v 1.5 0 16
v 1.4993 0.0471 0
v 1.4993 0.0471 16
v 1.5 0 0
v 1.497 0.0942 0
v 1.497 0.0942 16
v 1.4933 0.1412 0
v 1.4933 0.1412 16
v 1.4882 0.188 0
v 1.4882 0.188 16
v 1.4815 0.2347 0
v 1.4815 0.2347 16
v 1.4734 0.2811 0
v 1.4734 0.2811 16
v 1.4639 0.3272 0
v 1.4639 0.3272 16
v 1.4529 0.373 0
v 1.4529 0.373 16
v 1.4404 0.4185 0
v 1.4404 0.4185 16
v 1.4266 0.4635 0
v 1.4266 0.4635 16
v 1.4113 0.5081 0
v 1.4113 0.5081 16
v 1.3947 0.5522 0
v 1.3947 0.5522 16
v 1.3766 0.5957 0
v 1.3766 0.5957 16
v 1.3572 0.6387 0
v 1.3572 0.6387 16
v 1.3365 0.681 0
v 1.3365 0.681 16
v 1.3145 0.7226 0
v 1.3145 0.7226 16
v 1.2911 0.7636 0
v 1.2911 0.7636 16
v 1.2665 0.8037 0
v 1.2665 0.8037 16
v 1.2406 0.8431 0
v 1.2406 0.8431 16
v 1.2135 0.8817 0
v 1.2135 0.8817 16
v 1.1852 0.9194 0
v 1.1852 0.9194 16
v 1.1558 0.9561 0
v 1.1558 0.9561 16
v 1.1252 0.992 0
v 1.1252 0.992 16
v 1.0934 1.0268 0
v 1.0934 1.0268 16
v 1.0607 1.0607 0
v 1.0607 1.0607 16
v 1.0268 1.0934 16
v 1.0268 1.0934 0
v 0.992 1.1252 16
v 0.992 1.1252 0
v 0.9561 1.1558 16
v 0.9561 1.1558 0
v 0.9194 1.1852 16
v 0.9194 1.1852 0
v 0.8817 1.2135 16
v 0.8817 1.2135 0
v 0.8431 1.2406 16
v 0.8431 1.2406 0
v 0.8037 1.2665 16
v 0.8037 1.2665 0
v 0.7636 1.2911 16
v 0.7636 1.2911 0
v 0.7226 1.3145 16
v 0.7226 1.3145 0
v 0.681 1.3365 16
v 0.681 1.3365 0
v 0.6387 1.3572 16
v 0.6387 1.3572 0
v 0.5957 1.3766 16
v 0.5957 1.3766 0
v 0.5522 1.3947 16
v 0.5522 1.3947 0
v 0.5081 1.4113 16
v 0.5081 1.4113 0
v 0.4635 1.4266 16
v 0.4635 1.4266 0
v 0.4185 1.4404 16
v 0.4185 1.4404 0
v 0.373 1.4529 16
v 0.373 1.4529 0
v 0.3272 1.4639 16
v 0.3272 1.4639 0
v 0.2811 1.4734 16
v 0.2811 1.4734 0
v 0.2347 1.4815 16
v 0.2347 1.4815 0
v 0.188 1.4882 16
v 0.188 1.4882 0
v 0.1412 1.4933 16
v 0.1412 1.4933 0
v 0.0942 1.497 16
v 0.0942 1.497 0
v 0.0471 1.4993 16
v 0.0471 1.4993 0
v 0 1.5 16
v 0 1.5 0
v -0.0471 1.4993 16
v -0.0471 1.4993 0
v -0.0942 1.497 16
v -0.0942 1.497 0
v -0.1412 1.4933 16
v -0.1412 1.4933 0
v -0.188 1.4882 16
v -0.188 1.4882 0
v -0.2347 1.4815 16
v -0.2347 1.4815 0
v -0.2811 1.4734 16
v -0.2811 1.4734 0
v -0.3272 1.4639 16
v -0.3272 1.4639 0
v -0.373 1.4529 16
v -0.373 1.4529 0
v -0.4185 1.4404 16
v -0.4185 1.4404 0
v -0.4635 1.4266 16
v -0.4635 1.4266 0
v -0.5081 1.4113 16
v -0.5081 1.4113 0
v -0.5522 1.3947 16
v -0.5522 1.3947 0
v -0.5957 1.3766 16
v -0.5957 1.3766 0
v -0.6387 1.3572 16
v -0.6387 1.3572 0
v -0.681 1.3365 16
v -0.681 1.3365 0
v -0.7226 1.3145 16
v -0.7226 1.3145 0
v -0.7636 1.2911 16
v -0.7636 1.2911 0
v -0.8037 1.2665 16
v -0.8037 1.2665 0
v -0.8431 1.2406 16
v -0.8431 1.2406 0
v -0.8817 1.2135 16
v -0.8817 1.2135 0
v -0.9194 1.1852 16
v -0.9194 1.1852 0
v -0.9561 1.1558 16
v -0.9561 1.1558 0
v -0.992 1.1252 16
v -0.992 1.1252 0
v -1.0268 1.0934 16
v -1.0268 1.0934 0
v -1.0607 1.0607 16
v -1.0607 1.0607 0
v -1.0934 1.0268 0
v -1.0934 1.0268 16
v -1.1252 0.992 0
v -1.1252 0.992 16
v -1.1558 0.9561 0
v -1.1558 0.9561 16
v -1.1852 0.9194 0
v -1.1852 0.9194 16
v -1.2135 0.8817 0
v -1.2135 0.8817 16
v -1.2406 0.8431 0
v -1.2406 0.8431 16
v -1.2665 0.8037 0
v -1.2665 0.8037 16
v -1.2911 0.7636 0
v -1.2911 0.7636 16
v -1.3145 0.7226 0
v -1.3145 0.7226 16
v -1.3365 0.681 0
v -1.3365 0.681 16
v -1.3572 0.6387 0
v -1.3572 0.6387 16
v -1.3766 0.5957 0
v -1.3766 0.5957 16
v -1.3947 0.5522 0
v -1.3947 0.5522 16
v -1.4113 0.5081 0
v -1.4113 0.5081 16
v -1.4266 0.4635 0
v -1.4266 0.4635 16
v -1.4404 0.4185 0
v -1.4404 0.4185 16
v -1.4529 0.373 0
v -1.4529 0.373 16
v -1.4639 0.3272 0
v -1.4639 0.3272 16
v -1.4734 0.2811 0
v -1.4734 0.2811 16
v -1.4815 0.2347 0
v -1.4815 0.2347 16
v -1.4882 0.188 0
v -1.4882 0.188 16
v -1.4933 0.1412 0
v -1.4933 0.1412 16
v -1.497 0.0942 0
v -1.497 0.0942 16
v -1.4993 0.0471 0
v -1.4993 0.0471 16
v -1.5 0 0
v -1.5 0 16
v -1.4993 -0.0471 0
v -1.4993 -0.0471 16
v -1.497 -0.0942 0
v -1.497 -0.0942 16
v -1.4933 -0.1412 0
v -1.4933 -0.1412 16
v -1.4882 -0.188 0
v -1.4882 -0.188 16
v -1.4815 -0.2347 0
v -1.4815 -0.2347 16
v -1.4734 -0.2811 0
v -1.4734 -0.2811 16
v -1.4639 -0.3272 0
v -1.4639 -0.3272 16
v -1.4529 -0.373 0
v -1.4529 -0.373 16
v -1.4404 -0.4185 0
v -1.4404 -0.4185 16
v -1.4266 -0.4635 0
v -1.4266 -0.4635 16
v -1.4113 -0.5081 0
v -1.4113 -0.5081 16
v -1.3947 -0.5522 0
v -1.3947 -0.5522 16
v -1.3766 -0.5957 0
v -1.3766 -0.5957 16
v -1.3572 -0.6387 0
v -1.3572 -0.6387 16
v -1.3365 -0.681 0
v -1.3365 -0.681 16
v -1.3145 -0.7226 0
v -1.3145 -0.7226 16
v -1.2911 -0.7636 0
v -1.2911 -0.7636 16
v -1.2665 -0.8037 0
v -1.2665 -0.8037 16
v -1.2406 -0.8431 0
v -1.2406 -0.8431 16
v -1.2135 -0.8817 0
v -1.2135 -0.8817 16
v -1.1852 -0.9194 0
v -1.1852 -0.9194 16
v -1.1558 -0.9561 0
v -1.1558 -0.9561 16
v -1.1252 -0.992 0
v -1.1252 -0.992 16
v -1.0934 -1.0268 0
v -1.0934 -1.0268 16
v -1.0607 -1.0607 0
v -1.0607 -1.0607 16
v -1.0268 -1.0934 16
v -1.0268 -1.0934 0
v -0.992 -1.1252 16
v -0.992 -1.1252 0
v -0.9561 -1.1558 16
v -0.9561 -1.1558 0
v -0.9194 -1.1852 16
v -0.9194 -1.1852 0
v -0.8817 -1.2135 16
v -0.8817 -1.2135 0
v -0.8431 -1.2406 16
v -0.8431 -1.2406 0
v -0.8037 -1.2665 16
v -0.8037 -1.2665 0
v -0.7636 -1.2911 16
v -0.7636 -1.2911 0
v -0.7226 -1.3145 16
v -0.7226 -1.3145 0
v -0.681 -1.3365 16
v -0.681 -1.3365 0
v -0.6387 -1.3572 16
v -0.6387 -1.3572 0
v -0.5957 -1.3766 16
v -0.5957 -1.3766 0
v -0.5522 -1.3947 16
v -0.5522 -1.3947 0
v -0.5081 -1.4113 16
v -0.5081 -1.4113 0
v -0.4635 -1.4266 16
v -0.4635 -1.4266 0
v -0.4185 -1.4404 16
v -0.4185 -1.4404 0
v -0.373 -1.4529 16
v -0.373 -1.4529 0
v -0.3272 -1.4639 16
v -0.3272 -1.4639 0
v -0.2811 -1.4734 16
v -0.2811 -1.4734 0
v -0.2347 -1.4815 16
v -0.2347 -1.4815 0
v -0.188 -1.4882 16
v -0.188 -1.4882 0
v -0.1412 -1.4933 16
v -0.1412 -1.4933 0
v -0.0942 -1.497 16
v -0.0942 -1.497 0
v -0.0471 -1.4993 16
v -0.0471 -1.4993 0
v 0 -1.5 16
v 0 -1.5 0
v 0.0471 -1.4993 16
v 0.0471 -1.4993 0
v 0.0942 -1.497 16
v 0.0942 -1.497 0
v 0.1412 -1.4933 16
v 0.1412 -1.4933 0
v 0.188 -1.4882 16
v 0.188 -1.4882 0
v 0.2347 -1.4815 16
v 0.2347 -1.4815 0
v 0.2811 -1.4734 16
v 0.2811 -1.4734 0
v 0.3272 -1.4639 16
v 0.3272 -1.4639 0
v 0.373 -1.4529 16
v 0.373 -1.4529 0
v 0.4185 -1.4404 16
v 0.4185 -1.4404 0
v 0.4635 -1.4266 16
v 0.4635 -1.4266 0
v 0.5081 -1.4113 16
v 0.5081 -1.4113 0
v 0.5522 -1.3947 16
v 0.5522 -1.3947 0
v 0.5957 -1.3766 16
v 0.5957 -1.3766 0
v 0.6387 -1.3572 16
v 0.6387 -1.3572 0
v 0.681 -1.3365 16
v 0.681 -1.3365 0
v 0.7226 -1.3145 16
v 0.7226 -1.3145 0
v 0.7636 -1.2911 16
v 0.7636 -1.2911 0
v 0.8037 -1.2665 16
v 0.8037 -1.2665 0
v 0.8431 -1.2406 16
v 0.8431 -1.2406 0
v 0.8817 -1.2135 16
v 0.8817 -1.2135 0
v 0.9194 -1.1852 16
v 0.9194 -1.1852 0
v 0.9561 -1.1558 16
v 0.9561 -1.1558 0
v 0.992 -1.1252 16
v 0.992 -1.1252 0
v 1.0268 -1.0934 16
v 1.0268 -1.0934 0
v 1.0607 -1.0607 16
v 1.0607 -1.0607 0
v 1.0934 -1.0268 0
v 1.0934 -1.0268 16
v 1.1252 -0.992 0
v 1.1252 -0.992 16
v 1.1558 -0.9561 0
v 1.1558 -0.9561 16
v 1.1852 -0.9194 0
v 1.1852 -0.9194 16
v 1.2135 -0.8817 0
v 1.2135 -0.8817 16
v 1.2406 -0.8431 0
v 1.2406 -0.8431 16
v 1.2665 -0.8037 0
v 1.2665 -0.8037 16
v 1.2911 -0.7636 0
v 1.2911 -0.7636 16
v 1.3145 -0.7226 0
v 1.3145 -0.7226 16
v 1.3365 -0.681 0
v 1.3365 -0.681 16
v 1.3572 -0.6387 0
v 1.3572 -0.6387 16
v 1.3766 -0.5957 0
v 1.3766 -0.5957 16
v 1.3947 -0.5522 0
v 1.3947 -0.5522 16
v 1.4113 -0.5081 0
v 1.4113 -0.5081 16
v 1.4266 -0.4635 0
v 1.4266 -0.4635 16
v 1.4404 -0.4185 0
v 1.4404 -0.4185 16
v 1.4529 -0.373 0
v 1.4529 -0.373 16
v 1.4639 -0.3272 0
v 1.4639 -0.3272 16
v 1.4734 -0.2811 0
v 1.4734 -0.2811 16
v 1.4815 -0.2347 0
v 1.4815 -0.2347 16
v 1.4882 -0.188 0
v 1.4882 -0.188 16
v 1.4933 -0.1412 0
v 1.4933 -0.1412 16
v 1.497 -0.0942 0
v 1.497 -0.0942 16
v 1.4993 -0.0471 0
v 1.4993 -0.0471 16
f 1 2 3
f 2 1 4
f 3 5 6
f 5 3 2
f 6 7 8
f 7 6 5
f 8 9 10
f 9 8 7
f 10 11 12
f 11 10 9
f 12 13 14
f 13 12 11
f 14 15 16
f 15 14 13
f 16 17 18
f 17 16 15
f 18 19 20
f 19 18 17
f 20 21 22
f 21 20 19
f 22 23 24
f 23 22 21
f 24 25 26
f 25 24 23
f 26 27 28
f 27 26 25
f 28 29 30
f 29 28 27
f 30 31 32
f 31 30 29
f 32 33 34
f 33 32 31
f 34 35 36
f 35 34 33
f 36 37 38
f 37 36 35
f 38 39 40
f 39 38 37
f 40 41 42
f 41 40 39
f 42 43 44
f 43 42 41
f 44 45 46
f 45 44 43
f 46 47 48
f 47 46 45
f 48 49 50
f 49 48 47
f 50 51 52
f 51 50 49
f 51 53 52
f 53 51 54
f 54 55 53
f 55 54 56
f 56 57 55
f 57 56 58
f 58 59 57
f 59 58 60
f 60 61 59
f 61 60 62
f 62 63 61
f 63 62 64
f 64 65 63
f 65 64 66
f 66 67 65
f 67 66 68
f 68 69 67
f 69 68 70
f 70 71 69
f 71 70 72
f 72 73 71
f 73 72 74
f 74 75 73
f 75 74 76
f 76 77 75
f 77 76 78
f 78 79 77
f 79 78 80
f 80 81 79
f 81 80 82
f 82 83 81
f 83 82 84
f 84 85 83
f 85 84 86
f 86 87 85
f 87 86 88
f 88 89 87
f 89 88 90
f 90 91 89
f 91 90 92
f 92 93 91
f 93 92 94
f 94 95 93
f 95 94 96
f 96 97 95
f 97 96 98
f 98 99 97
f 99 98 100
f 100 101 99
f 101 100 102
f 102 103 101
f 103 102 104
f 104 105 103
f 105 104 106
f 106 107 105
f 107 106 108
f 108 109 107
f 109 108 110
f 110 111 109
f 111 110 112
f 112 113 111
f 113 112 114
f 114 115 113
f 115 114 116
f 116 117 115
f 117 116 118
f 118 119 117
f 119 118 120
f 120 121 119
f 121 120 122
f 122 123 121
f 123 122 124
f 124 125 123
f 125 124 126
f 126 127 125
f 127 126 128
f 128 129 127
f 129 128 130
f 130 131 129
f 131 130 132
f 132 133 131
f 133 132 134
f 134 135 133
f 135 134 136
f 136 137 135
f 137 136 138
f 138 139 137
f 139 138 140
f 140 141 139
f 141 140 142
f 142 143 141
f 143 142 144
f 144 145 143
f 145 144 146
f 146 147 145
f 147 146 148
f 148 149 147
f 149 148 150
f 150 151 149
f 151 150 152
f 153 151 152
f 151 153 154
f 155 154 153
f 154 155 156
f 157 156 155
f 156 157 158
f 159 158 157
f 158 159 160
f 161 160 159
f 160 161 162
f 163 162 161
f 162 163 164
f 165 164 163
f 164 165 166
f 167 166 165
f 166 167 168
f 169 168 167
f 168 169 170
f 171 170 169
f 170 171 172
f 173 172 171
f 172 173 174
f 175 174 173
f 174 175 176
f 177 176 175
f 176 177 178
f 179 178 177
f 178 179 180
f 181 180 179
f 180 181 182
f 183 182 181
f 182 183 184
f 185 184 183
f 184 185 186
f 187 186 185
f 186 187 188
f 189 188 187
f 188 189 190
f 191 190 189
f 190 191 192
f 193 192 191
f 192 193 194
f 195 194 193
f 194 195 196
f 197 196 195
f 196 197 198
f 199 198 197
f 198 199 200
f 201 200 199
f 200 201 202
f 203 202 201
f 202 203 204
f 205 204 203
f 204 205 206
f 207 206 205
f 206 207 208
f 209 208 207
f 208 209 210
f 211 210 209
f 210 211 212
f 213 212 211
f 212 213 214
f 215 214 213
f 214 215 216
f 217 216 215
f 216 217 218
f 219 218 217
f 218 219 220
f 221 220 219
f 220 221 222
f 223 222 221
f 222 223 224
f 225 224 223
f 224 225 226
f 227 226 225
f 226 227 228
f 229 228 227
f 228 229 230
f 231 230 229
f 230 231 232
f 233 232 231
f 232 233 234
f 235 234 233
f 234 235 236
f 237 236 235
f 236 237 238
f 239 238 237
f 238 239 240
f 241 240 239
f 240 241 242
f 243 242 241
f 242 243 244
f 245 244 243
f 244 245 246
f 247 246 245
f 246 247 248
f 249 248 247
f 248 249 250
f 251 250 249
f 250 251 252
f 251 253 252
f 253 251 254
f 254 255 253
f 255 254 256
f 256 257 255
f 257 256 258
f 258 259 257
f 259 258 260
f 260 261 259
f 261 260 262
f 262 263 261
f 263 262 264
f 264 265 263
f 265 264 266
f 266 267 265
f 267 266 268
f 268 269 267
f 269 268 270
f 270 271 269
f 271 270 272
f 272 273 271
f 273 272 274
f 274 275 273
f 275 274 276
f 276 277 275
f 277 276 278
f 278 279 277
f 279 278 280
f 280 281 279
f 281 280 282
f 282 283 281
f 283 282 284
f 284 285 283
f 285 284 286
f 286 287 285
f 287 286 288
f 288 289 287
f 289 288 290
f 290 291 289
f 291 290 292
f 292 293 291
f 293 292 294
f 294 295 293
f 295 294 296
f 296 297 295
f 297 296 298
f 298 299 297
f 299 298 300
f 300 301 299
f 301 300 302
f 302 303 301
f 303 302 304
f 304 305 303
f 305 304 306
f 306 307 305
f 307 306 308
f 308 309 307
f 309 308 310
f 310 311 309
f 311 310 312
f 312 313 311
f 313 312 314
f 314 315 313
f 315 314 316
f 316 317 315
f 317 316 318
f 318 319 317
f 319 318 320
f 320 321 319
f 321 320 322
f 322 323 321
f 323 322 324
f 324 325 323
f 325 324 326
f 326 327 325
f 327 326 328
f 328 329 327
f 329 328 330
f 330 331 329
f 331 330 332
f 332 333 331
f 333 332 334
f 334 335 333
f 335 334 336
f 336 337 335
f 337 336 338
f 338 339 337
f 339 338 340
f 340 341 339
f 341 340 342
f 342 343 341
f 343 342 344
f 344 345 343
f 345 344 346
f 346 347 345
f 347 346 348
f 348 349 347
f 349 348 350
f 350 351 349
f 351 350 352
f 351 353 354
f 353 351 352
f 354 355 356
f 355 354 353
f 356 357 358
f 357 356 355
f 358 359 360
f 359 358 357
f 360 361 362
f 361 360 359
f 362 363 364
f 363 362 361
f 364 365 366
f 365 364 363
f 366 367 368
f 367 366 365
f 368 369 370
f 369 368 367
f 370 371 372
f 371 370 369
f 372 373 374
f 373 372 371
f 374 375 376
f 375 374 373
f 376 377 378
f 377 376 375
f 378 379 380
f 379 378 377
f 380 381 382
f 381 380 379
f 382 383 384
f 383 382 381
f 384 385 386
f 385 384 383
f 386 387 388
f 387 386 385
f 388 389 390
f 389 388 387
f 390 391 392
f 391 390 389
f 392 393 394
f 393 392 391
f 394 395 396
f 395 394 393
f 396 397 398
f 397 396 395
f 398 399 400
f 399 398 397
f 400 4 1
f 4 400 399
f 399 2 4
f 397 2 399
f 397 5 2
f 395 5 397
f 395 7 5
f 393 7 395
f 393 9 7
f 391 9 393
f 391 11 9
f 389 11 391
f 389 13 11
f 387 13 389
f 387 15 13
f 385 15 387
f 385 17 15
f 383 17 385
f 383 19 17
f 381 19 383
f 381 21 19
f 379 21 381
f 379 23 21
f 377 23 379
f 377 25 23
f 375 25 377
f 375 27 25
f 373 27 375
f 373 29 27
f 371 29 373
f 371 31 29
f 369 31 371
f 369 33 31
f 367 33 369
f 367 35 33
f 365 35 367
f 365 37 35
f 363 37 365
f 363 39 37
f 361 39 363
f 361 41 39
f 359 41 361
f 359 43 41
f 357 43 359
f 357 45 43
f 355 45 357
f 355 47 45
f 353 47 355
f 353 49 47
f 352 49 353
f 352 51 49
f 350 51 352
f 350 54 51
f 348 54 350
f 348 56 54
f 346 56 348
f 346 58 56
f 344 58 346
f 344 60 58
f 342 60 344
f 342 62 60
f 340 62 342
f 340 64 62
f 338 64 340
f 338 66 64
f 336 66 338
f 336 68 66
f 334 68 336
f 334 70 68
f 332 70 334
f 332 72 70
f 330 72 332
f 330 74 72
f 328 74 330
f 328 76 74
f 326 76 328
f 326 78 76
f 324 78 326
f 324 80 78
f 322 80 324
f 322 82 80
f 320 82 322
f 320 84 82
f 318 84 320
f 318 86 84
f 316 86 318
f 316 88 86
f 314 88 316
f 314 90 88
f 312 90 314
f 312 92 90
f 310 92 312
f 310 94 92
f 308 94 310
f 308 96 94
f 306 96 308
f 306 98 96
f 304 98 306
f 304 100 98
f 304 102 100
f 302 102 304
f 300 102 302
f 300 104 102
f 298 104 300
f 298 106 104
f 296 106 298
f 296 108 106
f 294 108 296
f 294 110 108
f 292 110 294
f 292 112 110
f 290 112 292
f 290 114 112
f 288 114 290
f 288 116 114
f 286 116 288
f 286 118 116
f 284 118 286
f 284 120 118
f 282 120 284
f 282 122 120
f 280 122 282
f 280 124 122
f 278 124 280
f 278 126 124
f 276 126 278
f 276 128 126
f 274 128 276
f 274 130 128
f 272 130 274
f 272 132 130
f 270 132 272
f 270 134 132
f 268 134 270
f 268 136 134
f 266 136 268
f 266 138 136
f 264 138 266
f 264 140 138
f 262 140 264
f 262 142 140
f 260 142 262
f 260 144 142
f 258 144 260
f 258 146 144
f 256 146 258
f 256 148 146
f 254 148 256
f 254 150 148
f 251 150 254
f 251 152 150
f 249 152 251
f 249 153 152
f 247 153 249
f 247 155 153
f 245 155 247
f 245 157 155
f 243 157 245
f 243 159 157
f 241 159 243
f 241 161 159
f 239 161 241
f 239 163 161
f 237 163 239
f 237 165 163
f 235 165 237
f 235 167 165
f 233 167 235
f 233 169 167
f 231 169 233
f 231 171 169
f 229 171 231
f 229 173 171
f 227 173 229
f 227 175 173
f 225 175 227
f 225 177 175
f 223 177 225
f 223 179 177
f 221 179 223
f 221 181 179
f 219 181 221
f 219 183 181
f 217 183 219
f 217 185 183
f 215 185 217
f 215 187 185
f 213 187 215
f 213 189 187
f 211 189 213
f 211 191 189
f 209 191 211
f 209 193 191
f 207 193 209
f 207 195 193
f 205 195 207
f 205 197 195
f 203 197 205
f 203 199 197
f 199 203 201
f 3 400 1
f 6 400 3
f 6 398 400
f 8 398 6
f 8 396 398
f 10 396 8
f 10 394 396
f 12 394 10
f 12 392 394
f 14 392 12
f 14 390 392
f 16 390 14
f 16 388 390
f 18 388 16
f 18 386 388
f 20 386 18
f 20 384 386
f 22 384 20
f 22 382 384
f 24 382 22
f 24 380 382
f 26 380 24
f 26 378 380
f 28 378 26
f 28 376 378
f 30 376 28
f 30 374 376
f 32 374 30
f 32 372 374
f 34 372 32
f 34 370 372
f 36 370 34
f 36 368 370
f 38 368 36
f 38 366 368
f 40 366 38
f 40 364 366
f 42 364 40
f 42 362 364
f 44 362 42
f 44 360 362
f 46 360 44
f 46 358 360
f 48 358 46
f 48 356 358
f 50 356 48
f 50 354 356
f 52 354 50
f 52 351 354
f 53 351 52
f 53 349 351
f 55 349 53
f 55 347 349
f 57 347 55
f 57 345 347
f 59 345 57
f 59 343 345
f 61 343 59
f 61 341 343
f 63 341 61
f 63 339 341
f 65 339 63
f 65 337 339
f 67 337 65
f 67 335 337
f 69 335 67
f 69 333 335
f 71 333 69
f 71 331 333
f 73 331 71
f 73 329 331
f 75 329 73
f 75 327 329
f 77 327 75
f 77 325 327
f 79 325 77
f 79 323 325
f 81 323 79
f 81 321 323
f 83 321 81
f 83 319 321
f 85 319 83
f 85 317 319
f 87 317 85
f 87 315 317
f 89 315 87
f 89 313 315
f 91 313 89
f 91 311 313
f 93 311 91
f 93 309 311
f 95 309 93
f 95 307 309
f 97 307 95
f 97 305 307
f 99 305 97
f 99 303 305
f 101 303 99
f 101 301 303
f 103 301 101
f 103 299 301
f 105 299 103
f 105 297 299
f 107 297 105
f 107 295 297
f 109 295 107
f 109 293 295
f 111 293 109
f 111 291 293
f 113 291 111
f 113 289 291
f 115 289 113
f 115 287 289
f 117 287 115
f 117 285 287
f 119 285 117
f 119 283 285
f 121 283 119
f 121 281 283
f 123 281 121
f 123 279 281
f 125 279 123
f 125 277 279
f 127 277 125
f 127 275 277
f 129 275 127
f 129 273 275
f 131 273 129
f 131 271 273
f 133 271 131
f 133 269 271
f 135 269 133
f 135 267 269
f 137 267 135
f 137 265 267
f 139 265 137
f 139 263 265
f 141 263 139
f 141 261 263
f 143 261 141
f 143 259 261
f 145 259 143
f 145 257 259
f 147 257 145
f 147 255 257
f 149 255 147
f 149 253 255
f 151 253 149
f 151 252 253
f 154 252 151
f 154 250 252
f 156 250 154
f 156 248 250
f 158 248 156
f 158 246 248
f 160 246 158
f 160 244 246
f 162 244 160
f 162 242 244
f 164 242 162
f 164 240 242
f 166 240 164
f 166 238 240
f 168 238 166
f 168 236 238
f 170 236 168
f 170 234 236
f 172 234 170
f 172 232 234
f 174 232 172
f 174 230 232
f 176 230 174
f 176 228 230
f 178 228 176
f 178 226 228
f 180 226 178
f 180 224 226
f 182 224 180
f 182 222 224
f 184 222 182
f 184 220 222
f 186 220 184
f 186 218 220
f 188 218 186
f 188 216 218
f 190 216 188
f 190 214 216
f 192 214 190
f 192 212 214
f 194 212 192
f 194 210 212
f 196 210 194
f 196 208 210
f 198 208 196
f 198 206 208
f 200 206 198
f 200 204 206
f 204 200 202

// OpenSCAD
diameter = 3;
length = 16;


cylinder(d=diameter, length, $fn=200);
